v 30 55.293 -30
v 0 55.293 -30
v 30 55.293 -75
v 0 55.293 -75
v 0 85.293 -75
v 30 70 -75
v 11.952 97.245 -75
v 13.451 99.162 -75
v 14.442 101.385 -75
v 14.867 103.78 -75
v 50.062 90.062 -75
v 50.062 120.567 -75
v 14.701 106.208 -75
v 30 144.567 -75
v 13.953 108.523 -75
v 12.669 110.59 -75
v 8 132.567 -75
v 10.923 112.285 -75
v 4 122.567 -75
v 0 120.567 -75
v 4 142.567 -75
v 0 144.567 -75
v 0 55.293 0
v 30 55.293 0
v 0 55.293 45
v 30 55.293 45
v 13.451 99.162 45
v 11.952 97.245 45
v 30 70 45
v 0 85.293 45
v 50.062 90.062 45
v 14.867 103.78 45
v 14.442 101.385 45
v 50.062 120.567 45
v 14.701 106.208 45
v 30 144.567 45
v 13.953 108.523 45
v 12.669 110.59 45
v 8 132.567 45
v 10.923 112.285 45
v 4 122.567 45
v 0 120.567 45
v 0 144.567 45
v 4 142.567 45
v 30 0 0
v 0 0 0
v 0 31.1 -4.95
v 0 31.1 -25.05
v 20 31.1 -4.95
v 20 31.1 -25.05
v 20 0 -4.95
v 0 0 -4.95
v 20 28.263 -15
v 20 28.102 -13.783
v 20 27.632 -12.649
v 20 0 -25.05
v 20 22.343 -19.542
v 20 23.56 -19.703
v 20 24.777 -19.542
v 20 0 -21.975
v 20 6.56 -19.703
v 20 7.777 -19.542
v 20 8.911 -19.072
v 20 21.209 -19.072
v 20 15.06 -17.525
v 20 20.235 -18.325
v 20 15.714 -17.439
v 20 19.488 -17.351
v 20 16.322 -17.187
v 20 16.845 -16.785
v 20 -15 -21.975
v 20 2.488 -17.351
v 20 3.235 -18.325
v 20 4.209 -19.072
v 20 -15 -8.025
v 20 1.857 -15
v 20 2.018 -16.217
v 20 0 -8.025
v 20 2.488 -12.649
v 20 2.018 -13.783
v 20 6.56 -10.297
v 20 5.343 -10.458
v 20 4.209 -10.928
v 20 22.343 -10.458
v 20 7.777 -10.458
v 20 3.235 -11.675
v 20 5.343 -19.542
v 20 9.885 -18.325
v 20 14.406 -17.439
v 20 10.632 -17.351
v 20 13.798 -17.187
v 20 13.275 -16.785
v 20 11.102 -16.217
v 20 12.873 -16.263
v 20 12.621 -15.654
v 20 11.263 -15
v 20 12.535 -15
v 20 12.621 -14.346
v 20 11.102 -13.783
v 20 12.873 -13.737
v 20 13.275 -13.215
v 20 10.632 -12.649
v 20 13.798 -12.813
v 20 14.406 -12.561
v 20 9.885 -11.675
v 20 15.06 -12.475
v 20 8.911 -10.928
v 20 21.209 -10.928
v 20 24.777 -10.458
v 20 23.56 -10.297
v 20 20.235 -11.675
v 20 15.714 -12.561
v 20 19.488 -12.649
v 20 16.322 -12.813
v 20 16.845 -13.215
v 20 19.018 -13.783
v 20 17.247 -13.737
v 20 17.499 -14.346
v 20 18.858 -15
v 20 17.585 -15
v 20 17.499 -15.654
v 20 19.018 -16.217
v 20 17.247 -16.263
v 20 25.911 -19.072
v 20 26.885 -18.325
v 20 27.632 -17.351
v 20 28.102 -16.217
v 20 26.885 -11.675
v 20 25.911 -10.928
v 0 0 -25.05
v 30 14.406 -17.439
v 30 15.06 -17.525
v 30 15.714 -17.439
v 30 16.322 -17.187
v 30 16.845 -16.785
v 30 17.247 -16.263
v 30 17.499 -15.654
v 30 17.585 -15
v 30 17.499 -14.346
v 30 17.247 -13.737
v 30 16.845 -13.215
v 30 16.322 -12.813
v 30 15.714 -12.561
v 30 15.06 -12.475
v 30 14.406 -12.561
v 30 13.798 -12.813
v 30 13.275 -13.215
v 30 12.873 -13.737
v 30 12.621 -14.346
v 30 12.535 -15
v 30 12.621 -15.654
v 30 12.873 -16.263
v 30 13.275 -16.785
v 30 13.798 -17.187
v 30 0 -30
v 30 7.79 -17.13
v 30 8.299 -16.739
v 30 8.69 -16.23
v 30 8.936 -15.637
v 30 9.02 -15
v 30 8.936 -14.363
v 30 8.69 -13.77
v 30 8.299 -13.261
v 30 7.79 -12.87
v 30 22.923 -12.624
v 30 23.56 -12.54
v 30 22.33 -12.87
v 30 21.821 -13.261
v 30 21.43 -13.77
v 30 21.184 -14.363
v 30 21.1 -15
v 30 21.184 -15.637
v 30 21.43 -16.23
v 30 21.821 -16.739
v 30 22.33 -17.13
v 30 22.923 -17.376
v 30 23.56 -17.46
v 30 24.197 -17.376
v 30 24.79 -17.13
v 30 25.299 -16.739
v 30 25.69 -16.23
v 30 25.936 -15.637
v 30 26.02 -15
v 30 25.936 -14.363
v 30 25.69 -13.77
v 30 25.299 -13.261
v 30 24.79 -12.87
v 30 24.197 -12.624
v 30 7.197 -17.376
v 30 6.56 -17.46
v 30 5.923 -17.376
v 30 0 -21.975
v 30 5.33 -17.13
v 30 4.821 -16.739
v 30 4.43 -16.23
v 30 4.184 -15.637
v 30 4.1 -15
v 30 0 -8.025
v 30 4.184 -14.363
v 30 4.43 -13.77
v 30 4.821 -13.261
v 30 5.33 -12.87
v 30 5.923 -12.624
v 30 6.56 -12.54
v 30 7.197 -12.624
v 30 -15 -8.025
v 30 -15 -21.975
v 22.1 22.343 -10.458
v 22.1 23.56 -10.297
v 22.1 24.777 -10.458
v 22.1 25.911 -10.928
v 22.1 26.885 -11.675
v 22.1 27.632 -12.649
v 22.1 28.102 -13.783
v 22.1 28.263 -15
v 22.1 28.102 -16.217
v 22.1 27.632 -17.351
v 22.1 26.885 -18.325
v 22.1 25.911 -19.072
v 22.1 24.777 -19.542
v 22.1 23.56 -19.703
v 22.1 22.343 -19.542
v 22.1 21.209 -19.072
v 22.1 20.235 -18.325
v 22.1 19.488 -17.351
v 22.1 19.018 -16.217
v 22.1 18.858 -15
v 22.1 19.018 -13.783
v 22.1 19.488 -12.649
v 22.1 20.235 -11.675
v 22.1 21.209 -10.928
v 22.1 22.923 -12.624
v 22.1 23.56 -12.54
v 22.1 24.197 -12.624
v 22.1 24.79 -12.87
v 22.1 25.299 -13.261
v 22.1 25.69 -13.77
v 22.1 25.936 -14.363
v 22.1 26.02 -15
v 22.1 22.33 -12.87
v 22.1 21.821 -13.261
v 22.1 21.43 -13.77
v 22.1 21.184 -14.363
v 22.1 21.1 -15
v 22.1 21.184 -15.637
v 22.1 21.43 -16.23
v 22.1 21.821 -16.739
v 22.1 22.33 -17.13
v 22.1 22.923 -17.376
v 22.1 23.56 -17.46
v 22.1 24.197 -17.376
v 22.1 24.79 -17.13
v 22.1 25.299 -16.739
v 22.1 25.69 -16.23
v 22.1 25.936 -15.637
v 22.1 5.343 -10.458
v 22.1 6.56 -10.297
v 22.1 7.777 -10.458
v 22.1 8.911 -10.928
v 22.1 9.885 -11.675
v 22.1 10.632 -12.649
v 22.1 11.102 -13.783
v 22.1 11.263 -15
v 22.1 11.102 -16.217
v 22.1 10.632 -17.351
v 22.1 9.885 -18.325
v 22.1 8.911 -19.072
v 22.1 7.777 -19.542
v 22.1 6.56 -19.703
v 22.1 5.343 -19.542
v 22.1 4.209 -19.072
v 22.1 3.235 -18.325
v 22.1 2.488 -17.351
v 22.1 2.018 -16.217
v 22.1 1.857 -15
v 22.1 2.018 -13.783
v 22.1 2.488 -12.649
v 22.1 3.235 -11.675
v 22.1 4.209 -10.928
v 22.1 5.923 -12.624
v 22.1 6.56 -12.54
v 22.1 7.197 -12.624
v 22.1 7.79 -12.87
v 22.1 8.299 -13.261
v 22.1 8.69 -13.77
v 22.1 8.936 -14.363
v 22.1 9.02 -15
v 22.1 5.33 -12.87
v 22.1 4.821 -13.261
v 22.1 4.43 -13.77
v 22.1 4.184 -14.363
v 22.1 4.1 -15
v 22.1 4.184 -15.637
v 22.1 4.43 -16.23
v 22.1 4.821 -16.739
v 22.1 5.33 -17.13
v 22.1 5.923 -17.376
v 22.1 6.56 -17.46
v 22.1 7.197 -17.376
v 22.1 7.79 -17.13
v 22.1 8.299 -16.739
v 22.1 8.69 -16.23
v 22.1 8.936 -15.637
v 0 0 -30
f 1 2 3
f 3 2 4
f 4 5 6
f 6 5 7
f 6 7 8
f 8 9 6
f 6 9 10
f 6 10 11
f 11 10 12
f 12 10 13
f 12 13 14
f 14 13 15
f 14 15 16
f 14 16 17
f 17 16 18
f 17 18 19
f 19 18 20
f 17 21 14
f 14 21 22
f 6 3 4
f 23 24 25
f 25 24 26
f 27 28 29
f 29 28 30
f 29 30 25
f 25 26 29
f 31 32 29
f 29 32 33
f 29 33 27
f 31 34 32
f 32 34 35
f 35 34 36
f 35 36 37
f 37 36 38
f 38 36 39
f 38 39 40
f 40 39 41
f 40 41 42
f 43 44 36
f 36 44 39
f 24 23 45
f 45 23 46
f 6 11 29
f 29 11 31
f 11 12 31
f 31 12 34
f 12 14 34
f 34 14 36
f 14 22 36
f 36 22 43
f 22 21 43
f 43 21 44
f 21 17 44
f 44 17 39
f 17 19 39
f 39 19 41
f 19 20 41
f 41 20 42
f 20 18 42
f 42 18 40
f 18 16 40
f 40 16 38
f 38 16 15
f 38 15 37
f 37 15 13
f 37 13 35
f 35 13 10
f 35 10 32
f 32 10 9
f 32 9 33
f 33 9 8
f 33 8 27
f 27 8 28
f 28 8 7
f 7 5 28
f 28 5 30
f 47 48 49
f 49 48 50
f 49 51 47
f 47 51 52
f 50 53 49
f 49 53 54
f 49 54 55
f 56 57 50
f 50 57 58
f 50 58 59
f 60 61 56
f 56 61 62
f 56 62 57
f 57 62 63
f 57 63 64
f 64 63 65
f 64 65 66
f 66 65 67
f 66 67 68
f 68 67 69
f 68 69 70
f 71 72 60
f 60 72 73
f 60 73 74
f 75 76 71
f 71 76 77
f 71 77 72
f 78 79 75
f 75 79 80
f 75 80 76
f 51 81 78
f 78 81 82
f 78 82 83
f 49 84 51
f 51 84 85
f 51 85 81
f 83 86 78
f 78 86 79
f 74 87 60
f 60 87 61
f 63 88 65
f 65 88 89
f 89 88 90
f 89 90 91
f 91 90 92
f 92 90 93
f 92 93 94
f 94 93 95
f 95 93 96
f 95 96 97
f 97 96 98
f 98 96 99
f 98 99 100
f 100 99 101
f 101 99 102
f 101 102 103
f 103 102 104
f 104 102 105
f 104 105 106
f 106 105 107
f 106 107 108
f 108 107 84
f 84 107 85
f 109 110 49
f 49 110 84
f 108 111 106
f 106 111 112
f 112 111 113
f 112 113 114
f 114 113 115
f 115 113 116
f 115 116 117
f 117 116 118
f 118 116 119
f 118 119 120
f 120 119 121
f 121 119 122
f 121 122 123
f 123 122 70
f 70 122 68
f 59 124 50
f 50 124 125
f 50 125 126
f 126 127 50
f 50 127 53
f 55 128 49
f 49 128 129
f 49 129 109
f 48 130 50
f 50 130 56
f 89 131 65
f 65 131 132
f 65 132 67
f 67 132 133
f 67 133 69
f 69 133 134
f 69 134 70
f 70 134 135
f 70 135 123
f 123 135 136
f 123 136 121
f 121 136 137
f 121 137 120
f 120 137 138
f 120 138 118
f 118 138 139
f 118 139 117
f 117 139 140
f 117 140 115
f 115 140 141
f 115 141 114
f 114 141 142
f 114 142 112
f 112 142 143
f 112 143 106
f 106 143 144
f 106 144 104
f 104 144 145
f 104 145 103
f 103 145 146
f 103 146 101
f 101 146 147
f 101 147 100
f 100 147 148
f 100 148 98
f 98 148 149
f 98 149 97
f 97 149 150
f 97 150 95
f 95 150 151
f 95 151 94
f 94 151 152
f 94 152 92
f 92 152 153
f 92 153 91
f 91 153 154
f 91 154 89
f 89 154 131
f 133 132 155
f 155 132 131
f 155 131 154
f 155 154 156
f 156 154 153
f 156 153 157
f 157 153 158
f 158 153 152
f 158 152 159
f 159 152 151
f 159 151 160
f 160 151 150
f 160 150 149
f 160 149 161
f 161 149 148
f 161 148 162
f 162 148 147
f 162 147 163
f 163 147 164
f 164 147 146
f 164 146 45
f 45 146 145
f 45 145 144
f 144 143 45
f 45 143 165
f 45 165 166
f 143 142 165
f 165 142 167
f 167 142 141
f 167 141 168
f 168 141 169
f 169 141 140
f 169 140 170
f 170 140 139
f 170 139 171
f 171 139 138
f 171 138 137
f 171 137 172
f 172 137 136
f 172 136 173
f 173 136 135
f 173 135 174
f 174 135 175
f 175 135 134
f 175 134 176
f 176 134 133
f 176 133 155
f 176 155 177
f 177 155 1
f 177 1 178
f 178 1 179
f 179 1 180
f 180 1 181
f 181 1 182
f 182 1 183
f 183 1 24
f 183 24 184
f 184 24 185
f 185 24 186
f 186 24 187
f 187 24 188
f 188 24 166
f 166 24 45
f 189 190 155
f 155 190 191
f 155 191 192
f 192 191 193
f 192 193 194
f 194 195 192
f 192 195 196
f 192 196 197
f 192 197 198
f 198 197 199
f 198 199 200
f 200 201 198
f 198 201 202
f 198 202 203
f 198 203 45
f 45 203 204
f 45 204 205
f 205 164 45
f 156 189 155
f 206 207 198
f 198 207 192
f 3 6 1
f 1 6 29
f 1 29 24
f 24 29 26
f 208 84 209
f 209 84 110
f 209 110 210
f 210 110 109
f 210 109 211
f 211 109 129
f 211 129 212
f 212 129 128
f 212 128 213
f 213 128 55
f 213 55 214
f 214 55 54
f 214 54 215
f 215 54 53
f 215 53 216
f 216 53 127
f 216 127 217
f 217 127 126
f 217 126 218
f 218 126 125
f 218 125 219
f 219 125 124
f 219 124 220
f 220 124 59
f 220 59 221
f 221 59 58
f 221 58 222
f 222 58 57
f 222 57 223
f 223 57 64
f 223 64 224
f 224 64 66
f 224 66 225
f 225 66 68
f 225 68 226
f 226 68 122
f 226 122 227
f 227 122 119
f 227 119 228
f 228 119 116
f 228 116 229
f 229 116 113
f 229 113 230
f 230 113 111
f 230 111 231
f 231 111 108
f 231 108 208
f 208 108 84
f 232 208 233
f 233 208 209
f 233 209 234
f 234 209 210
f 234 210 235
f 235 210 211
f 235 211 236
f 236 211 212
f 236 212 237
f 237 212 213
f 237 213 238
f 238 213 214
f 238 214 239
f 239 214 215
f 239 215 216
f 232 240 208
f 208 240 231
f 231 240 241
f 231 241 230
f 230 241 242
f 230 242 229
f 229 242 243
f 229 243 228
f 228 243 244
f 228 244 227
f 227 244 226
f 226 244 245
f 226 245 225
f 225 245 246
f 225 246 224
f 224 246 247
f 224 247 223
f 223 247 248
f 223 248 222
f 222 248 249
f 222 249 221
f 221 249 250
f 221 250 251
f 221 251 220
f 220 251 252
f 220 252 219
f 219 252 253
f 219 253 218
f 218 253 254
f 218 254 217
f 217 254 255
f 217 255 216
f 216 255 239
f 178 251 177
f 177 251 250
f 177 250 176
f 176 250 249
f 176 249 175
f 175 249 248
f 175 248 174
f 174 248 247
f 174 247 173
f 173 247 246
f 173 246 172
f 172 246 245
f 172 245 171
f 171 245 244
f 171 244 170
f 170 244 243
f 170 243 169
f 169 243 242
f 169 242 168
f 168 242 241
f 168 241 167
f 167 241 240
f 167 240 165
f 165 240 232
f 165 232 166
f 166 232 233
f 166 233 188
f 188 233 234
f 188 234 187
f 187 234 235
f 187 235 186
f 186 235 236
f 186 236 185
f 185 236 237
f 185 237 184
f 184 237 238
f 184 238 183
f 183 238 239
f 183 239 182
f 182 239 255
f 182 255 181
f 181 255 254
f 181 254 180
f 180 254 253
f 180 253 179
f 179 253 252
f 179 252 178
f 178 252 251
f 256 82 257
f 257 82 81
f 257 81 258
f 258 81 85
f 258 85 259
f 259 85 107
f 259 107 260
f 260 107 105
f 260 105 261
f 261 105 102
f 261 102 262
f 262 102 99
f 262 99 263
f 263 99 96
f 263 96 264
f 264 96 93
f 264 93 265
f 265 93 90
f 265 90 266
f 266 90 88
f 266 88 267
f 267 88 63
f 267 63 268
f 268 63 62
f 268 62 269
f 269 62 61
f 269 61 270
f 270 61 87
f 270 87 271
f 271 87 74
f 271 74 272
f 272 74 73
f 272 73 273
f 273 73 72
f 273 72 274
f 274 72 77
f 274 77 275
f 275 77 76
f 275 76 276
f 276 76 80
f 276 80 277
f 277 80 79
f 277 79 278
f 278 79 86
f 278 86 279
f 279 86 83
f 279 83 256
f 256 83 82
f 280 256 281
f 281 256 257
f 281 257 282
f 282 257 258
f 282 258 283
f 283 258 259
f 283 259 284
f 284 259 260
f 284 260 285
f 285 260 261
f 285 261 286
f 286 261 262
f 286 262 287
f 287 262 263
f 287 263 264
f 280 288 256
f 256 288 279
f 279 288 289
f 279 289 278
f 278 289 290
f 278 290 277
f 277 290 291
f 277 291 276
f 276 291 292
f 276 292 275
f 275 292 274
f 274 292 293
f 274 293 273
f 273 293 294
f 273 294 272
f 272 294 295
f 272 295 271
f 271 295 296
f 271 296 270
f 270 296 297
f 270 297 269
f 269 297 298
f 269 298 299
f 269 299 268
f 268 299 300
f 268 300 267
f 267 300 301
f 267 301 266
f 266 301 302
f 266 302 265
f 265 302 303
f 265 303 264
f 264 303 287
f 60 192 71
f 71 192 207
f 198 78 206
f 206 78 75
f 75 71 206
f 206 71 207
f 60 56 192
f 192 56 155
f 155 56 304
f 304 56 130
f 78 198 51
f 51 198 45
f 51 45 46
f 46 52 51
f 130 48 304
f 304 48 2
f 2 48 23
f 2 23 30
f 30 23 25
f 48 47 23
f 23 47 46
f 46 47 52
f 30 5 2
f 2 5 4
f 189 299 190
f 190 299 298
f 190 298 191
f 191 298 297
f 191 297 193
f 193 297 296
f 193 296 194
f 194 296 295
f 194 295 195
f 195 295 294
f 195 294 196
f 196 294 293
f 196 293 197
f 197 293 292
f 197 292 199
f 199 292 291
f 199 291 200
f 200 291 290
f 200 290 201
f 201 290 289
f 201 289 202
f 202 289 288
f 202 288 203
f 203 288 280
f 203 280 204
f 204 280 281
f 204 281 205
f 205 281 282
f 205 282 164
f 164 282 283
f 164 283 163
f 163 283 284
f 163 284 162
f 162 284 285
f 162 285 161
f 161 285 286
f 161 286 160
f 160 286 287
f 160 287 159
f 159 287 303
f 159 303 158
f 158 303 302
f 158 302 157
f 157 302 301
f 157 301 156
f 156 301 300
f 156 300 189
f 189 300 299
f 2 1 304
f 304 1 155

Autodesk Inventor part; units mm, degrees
ref_plane "YZ Plane" through (0, 0, 0) normal (1, 0, 0) x (0, 1, 0)
ref_plane "XZ Plane" through (0, 0, 0) normal (0, 1, 0) x (-1, 0, 0)
sketch "Sketch1" plane through (0, 0, 0) normal (0, 0, 1) x (1, 0, 0)
  line L0 (0, 0) -> (25, 0)
  line L1 (25, 0) -> (25, 40)
  line L2 (25, 40) -> (0, 40)
  line L3 (0, 40) -> (0, 0)
  dimension "d1" = 25
  dimension "d2" = 40
  dimension "d3" = 25
extrude "Extrusion1" add sketch "Sketch1" against normal blind 30
sketch "Sketch2" plane through (25, 0, 0) normal (1, 0, 0) x (0, 0, -1)
  line L0 (0, 0) -> (30, 0) projected
  circle A0 centre (15, 6.56) radius 2.46
extrude "Extrusion2" cut sketch "Sketch2" against normal blind 30
sketch "Sketch3" plane through (0, 0, 0) normal (-1, 0, 0) x (0, 0, 1)
  line L0 (0, 0) -> (-30, 0) projected
  line L1 (-25.05, 0) -> (-4.95, 0)
  line L2 (-4.95, 0) -> (-4.95, 33.12)
  line L3 (-4.95, 33.12) -> (-25.05, 33.12)
  line L4 (-25.05, 33.12) -> (-25.05, 0)
  dimension "d11" = 20.1
extrude "Extrusion3" cut sketch "Sketch3" against normal blind 20
sketch "Sketch4" plane through (0, 0, 0) normal (0, -1, 0) x (1, 0, 0)
  line L0 (20, -4.95) -> (20, -25.05) projected
  line L1 (20, -15) -> (25, -15)
  line L2 (25, 0) -> (25, -30) projected
  line L3 (20, -8.025) -> (25, -8.025)
  line L4 (25, -8.025) -> (25, -21.975)
  line L5 (25, -21.975) -> (20, -21.975)
  line L6 (20, -21.975) -> (20, -8.025)
  line L7 (20, -8.025) -> (25, -21.975) construction
  line L8 (25, -8.025) -> (20, -21.975) construction
  line L9 (25, -12.54) -> (25, -17.46) projected
  point P0 (0, 0)
  point P1 (22.5, -15)
  dimension "d14" = 13.95
extrude "Extrusion4" add sketch "Sketch4" along normal blind 15
sketch "Sketch5" plane through (20, 0, 0) normal (-1, 0, 0) x (0, 0, 1)
  circle A0 centre (-15, 6.56) radius 2.46 projected
  circle A1 centre (-15, 6.56) radius 4.7025
  circle A2 centre (-15, 6.56) radius 2.46 projected
  circle A3 centre (-15, 6.56) radius 2.46
  point P0 (0, 0)
  dimension "d17" = 9.405
extrude "Extrusion5" cut sketch "Sketch5" against normal blind 2.1
sketch "Sketch6" plane through (25, 0, 0) normal (1, 0, 0) x (0, 0, -1)
  circle A0 centre (15, 6.56) radius 4.7025 projected
  line L0 (15, 6.56) -> (15, 23.56)
  circle A1 centre (15, 23.56) radius 2.46
  point P0 (0, 0)
  dimension "d20" = 17
  dimension "d21" = 4.92
extrude "Extrusion6" cut sketch "Sketch6" against normal blind 10 contours A1
sketch "Sketch7" plane through (20, 0, 0) normal (-1, 0, 0) x (0, 0, 1)
  circle A0 centre (-15, 23.56) radius 2.46 projected
  circle A1 centre (-15, 23.56) radius 4.7025
  point P0 (0, 0)
  dimension "d24" = 9.405
extrude "Extrusion7" cut sketch "Sketch7" against normal blind 2.1
sketch "Sketch9" plane through (25, 0, 0) normal (1, 0, 0) x (0, 0, -1)
  circle A0 centre (15, 6.56) radius 2.46 projected
  circle A1 centre (15, 6.56) radius 2.46
  circle A2 centre (15, 23.56) radius 2.46 projected
  circle A3 centre (15, 23.56) radius 2.46
  line L0 (30, 40) -> (30, 0) projected
  line L1 (30, 0) -> (30, 40)
  line L2 (30, 40) -> (0, 40)
  line L3 (0, 40) -> (0, 0)
  line L4 (0, 0) -> (8.025, 0) projected
  line L5 (21.975, 0) -> (21.975, -15)
  line L6 (21.975, -15) -> (8.025, -15)
  line L7 (8.025, -15) -> (8.025, 0)
  line L8 (0, 0) -> (8.025, 0)
  line L9 (21.975, 0) -> (30, 0)
extrude "Extrusion8" add sketch "Sketch9" along normal blind 5
sketch "Sketch10" plane through (0, 40, 0) normal (0, 1, 0) x (1, 0, 0)
  line L0 (0, 30) -> (30, 30) projected
  line L1 (30, 0) -> (0, 0) projected
  line L2 (0, 30) -> (30, 30)
  line L3 (30, 30) -> (30, 0)
  line L4 (30, 0) -> (0, 0)
  line L5 (0, 0) -> (0, 30)
extrude "Extrusion9" add sketch "Sketch10" along normal blind 30
sketch "Sketch12" plane through (30, 0, 0) normal (1, 0, 0) x (0, 0, -1)
  circle A0 centre (15, 6.56) radius 2.46 projected
  line L0 (15, 6.56) -> (15, 15.06)
  circle A1 centre (15, 15.06) radius 2.525
  point P0 (0, 0)
  dimension "d31" = 8.5
  dimension "d33" = 5.05
extrude "Extrusion10" cut sketch "Sketch12" against normal blind 30 contours A1
sketch "Sketch15" plane through (0, 0, -25.05) normal (-1, 0, 0) x (0, 0, 1)
  line L0 (0, 33.12) -> (20.1, 33.12) projected
  line L1 (20.1, 33.12) -> (20.1, 0) projected
  line L2 (0, 33.12) -> (20.1, 33.12)
  line L3 (20.1, 33.12) -> (20.1, 31.1)
  line L4 (20.1, 31.1) -> (0, 31.1)
  line L5 (0, 31.1) -> (0, 33.12)
  point P0 (25.05, 0)
  dimension "d57" = 2.02
extrude "Extrusion13" add sketch "Sketch15" against normal blind 20
sketch "Sketch17" plane through (0, 0, 0) normal (0, 0, 1) x (1, 0, 0)
  line L0 (0, 70) -> (30, 70) projected
  line L1 (30, 70) -> (50.0622, 90.0622)
  line L2 (30, 70) -> (80, 70) construction
  line L3 (11.9522, 97.2454) -> (0, 85.2932)
  line L4 (0, 70) -> (0, 85.2932)
  line L5 (0, 70) -> (0, 0) projected
  line L6 (0, 70) -> (30, 70)
  line L7 (10.923, 112.2849) -> (0, 120.567)
  line L8 (50.0622, 105.3553) -> (50.0622, 120.567)
  line L9 (50.0622, 105.3553) -> (50.0622, 90.0622)
  arc A0 (11.9522, 97.2454) -> (10.923, 112.2849) centre (4.8811, 104.3165) ccw
  line L10 (0, 144.567) -> (30, 144.567)
  line L11 (30, 144.567) -> (50.0622, 120.567)
  line L12 (4, 142.567) -> (0, 144.567)
  line L13 (4, 122.567) -> (0, 120.567)
  line L14 (4, 122.567) -> (8, 132.567)
  line L15 (8, 132.567) -> (4, 142.567)
  dimension "d61" = 45
  dimension "d62" = 32.0271
  dimension "d72" = 10
extrude "Extrusion14" add sketch "Sketch17" against normal blind 30
sketch "Sketch22" plane through (0, 0, 0) normal (0, 0, 1) x (1, 0, 0)
  line L0 (11.9522, 97.2454) -> (0, 85.2932) projected
  line L1 (0, 85.2932) -> (11.9522, 97.2454)
  arc A0 (11.9522, 97.2454) -> (10.923, 112.2849) centre (4.8811, 104.3165) ccw projected
  arc A1 (11.9522, 97.2454) -> (10.923, 112.2849) centre (4.8811, 104.3165) ccw
  line L2 (0, 120.567) -> (10.923, 112.2849) projected
  line L3 (10.923, 112.2849) -> (0, 120.567)
  line L4 (0, 120.567) -> (4, 122.567) projected
  line L5 (0, 120.567) -> (4, 122.567)
  line L6 (4, 122.567) -> (8, 132.567) projected
  line L7 (4, 122.567) -> (8, 132.567)
  line L8 (8, 132.567) -> (4, 142.567) projected
  line L9 (8, 132.567) -> (4, 142.567)
  line L10 (4, 142.567) -> (0, 144.567) projected
  line L11 (4, 142.567) -> (0, 144.567)
  line L12 (0, 144.567) -> (30, 144.567) projected
  line L13 (0, 144.567) -> (30, 144.567)
  line L14 (50.0622, 120.567) -> (30, 144.567) projected
  line L15 (30, 144.567) -> (50.0622, 120.567)
  line L16 (50.0622, 120.567) -> (50.0622, 90.0622) projected
  line L17 (50.0622, 120.567) -> (50.0622, 90.0622)
  line L18 (30, 70) -> (50.0622, 90.0622) projected
  line L19 (50.0622, 90.0622) -> (30, 70)
  line L20 (0, 0) -> (0, 85.2932) projected
  line L21 (0, 85.2932) -> (0, 55.2932)
  line L22 (0, 55.2932) -> (30, 55.2932)
  line L23 (30, 0) -> (30, 70) projected
  line L24 (30, 55.2932) -> (30, 70)
  dimension "d83" = 30
extrude "Extrusion15" add sketch "Sketch22" along normal blind 45
ref_plane "Work Plane1" through (0, 0, -15) normal (0, 0, 1) x (1, 0, 0)
mirror "Mirror1" about plane through (0, 0, -15) normal (0, 0, 1) of "Extrusion15"
properties part number "rec_c_20mm_x_120mm"
